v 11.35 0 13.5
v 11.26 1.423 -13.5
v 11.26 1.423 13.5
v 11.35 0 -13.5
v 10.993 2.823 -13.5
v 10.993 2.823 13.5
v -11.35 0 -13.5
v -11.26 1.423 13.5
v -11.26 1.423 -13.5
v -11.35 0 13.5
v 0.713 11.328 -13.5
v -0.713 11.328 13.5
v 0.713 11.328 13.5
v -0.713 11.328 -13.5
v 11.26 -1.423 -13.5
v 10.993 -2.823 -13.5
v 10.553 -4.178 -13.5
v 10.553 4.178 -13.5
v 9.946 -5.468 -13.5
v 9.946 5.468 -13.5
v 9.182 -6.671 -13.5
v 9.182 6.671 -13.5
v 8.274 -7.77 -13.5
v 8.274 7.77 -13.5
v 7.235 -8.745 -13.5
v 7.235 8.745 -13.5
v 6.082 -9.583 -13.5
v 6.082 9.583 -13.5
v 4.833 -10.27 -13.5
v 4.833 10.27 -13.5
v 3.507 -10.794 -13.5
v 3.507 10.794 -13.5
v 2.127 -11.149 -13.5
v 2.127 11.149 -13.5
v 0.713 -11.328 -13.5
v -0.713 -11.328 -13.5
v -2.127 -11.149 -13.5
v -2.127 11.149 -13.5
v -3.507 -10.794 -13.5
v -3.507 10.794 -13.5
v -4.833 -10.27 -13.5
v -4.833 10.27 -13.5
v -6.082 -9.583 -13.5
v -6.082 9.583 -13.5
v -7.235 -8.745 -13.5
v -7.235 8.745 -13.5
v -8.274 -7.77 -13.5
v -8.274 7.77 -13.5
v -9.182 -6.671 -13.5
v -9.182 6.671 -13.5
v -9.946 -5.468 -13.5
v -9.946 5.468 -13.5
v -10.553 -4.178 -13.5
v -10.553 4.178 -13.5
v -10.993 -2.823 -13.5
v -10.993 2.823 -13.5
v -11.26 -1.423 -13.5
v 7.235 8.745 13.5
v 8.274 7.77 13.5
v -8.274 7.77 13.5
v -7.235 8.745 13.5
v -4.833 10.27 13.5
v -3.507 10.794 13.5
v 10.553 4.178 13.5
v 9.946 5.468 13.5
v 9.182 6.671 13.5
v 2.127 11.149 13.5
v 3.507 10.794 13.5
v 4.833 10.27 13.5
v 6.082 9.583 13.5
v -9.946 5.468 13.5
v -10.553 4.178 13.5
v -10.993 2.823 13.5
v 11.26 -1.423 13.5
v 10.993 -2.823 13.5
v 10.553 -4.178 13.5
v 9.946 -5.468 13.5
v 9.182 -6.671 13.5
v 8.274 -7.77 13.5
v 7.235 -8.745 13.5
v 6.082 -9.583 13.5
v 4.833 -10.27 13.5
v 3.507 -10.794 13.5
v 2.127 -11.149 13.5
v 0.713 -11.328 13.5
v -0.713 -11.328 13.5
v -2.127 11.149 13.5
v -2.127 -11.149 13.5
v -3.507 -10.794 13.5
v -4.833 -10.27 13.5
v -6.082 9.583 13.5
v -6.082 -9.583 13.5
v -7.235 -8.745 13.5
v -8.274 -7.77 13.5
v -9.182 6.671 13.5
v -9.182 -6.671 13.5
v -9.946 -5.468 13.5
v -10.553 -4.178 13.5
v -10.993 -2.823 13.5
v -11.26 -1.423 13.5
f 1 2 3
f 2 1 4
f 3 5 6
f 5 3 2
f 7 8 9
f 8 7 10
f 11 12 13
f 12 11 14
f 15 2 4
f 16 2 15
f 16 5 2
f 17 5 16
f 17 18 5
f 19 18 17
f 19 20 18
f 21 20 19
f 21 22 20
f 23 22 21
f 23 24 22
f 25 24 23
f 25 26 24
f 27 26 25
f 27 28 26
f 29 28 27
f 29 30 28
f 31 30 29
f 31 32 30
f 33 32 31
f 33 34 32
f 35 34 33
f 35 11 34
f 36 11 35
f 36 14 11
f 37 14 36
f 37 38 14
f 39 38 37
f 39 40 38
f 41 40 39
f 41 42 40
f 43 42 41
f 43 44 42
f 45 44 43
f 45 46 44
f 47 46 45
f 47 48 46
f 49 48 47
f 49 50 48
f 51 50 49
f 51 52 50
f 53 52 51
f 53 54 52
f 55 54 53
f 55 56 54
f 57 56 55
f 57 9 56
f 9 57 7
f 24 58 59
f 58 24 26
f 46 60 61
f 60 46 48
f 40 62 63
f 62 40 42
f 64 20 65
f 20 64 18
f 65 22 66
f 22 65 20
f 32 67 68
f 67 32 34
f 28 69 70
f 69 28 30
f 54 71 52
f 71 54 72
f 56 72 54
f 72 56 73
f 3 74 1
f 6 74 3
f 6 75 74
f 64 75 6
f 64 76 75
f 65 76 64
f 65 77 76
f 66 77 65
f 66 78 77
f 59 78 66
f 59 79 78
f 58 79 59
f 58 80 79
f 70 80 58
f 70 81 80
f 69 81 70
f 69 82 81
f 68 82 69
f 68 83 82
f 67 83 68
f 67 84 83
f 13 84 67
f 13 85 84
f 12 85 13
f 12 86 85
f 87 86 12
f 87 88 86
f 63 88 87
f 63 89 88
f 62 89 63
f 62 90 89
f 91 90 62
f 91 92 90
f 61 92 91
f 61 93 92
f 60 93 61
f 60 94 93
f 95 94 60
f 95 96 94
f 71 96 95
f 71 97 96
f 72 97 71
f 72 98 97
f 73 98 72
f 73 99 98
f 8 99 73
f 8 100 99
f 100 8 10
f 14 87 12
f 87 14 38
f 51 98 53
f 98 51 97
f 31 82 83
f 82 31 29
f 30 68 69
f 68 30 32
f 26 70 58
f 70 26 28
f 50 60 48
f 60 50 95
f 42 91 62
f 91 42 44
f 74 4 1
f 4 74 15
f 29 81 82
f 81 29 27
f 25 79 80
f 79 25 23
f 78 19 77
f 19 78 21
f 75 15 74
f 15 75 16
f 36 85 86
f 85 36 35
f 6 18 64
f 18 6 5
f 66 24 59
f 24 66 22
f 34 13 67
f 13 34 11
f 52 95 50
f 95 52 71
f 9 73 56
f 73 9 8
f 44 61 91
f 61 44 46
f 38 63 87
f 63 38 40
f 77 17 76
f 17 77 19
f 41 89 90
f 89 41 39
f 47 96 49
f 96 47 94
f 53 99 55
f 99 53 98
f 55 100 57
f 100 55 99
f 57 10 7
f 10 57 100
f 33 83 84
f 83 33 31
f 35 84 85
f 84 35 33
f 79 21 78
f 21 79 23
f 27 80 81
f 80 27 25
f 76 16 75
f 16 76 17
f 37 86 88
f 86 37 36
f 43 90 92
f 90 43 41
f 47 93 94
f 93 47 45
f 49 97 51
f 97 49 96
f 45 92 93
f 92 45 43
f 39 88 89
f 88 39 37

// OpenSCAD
$fn = 50;


difference() {
	union() {
		translate(v = [0, 0, -13.5000000000]) {
			cylinder(h = 27, r = 11.3500000000);
		}
	}
	union() {
		translate(v = [0, 0, -100.0000000000]) {
			cylinder(h = 200, r = 0);
		}
	}
}
